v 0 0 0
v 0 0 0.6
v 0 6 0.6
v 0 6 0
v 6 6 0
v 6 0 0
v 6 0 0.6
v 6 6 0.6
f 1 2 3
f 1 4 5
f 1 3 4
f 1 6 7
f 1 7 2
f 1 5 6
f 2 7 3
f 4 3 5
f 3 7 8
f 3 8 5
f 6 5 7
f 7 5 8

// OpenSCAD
/* Warning, this is a very basic generator with a lot of approximation 
input data : [UQFN, R6B, 6x6x0.6mm, 48, , A, C04-21372A]
generated by com.zoubworld.electronics.cad.model3d.Basic
Date : Sun Feb 15 10:50:49 CET 2026
*/

//body
color("black")
translate([0,0,0])
cube([6.0,6.0,0.6], center=false);
